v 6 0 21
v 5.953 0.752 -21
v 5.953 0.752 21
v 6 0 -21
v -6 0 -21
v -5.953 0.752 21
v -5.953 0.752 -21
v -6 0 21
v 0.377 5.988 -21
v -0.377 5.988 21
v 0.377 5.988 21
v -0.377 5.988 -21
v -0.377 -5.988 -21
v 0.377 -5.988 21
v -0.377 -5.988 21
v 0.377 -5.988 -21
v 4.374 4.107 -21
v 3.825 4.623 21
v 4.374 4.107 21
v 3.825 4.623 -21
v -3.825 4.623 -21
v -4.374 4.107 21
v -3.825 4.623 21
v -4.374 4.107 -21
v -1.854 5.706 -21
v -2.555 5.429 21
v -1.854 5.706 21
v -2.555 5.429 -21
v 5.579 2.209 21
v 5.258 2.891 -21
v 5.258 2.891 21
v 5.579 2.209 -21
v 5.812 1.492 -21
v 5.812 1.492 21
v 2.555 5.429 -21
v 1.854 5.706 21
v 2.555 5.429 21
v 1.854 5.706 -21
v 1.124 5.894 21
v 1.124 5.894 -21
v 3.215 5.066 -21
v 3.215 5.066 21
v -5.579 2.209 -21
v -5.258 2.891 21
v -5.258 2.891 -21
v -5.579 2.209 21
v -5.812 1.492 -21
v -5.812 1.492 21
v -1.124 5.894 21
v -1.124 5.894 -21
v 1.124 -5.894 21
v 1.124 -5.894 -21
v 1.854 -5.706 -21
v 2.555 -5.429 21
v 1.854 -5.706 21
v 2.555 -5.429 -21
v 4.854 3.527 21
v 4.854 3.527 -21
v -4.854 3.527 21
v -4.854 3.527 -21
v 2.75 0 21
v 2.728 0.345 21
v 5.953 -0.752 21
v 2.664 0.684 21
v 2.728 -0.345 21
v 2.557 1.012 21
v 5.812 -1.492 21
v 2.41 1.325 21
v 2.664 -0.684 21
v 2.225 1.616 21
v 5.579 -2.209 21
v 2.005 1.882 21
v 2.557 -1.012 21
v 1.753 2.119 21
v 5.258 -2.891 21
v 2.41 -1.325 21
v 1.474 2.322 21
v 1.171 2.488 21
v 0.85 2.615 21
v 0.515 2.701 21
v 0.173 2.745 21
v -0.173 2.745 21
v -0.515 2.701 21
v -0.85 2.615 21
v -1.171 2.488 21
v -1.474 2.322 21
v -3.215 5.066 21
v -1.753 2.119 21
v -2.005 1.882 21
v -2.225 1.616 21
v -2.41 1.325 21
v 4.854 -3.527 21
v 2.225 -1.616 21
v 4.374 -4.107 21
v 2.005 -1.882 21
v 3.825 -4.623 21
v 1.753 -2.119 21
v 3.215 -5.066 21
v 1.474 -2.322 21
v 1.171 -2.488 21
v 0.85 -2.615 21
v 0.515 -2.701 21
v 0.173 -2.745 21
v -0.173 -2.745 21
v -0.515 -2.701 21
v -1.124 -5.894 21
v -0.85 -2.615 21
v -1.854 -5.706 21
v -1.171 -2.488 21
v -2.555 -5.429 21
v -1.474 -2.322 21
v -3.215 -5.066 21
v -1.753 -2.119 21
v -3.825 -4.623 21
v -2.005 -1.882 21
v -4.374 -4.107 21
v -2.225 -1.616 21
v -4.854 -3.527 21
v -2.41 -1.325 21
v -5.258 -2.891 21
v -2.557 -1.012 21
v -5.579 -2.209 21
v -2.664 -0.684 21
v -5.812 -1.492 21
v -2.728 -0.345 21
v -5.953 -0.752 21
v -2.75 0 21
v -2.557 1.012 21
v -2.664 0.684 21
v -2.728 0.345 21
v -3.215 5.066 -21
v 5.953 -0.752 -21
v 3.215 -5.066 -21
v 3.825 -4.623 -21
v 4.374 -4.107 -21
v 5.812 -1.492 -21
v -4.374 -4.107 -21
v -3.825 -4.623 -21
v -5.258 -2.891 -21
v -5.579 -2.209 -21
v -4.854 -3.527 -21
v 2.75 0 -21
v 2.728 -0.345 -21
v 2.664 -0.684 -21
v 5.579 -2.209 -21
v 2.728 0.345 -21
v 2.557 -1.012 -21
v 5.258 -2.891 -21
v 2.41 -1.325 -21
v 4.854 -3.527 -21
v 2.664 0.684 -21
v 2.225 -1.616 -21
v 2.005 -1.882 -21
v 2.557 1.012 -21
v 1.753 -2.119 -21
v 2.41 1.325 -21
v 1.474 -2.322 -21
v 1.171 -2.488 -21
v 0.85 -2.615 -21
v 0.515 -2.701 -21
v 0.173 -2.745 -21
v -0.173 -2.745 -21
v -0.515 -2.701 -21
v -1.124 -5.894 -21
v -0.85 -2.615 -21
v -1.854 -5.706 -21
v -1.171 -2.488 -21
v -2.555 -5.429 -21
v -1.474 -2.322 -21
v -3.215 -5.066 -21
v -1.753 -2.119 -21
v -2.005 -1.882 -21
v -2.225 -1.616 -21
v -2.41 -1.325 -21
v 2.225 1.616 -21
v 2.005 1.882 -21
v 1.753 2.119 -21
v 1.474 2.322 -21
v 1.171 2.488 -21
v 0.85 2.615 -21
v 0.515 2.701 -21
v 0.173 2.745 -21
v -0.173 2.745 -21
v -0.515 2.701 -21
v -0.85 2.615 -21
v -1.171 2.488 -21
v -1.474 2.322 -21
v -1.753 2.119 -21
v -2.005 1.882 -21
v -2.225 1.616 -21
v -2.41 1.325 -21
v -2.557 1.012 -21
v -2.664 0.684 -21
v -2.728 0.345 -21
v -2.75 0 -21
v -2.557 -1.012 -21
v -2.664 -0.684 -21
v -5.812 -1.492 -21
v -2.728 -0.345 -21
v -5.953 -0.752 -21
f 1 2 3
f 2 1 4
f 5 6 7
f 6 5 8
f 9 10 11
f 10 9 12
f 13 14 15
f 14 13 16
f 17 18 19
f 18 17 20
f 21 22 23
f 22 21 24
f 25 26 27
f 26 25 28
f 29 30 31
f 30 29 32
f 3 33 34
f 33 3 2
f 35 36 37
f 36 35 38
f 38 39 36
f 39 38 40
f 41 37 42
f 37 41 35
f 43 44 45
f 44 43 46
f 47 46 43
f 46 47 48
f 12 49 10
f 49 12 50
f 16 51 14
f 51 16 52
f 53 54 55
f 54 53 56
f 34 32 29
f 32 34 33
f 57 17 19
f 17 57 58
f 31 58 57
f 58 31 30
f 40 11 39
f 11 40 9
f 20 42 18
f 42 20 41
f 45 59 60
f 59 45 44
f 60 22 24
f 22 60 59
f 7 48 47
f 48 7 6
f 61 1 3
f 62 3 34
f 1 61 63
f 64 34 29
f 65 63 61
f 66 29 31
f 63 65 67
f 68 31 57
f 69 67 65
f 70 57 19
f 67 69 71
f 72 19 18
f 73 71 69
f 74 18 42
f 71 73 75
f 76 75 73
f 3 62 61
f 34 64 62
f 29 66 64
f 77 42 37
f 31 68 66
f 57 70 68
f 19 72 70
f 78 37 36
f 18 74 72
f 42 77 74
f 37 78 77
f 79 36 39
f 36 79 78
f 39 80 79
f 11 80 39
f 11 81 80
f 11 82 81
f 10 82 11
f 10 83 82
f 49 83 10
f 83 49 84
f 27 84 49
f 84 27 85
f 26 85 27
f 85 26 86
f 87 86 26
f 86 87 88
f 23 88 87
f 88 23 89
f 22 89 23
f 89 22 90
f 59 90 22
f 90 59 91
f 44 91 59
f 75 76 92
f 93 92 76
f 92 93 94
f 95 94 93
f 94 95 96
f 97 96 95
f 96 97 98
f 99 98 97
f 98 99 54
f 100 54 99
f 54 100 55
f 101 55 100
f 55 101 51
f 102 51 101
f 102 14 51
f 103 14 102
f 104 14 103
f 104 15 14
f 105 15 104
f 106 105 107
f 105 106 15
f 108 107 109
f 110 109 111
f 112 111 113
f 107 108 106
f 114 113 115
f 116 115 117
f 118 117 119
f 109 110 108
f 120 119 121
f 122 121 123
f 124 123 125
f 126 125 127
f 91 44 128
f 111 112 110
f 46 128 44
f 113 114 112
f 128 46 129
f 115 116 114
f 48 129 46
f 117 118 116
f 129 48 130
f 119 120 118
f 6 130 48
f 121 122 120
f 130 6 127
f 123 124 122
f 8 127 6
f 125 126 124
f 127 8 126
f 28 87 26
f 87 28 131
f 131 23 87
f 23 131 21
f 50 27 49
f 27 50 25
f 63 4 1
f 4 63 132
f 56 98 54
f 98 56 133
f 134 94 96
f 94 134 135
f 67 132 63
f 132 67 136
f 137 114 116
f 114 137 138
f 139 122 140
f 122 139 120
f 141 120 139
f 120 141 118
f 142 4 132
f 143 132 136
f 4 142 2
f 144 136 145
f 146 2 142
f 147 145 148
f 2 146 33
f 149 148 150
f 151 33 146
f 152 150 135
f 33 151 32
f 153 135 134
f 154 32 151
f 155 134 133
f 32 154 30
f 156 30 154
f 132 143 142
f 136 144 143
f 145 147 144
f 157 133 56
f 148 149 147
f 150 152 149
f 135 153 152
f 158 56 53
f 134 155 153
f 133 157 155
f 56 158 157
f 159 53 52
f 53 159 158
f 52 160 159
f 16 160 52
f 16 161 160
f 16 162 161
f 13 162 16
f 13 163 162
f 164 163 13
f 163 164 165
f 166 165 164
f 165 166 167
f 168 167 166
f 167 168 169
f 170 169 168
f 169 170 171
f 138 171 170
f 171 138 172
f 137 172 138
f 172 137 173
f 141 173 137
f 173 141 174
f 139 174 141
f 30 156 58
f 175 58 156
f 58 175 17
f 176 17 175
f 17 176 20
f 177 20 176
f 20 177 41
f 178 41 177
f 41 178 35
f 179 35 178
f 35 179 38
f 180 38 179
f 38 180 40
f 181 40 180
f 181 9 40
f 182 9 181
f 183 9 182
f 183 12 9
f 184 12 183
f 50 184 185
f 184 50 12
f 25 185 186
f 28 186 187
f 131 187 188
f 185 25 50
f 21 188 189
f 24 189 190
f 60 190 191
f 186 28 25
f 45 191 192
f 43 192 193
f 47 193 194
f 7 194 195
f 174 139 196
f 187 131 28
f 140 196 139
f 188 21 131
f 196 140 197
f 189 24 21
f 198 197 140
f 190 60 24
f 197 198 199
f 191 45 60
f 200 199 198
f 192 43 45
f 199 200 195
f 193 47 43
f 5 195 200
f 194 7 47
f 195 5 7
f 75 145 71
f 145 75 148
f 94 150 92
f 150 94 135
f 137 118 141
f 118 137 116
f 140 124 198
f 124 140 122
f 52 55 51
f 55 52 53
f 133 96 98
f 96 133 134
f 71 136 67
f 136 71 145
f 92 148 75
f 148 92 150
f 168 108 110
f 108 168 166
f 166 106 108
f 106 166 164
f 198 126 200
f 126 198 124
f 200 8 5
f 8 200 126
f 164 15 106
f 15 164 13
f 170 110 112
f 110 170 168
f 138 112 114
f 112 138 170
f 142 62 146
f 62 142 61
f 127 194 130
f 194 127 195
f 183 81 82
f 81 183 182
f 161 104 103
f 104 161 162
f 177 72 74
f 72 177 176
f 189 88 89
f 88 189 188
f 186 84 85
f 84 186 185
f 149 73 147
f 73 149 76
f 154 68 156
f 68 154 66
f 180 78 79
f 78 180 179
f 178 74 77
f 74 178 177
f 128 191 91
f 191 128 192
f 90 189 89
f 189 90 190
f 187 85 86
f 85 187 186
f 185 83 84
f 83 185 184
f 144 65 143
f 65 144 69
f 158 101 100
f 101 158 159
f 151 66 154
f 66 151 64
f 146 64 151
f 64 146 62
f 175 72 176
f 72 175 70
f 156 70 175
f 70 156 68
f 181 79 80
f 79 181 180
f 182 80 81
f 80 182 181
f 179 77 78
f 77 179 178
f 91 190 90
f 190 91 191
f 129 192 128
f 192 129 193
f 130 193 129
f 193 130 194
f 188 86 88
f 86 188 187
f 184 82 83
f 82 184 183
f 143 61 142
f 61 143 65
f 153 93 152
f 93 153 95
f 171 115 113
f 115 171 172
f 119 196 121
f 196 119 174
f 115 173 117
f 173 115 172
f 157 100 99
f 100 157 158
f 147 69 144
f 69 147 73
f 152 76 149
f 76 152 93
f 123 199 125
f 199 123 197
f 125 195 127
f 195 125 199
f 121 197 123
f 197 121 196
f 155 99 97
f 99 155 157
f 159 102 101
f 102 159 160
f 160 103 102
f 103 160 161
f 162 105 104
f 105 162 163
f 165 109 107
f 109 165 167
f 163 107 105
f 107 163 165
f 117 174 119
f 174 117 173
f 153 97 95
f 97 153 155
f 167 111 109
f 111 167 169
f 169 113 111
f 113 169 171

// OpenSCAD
$fn = 50;


difference() {
	union() {
		translate(v = [0, 0, -21.0000000000]) {
			cylinder(h = 42, r = 6.0000000000);
		}
	}
	union() {
		translate(v = [0, 0, -100.0000000000]) {
			cylinder(h = 200, r = 2.7500000000);
		}
	}
}
